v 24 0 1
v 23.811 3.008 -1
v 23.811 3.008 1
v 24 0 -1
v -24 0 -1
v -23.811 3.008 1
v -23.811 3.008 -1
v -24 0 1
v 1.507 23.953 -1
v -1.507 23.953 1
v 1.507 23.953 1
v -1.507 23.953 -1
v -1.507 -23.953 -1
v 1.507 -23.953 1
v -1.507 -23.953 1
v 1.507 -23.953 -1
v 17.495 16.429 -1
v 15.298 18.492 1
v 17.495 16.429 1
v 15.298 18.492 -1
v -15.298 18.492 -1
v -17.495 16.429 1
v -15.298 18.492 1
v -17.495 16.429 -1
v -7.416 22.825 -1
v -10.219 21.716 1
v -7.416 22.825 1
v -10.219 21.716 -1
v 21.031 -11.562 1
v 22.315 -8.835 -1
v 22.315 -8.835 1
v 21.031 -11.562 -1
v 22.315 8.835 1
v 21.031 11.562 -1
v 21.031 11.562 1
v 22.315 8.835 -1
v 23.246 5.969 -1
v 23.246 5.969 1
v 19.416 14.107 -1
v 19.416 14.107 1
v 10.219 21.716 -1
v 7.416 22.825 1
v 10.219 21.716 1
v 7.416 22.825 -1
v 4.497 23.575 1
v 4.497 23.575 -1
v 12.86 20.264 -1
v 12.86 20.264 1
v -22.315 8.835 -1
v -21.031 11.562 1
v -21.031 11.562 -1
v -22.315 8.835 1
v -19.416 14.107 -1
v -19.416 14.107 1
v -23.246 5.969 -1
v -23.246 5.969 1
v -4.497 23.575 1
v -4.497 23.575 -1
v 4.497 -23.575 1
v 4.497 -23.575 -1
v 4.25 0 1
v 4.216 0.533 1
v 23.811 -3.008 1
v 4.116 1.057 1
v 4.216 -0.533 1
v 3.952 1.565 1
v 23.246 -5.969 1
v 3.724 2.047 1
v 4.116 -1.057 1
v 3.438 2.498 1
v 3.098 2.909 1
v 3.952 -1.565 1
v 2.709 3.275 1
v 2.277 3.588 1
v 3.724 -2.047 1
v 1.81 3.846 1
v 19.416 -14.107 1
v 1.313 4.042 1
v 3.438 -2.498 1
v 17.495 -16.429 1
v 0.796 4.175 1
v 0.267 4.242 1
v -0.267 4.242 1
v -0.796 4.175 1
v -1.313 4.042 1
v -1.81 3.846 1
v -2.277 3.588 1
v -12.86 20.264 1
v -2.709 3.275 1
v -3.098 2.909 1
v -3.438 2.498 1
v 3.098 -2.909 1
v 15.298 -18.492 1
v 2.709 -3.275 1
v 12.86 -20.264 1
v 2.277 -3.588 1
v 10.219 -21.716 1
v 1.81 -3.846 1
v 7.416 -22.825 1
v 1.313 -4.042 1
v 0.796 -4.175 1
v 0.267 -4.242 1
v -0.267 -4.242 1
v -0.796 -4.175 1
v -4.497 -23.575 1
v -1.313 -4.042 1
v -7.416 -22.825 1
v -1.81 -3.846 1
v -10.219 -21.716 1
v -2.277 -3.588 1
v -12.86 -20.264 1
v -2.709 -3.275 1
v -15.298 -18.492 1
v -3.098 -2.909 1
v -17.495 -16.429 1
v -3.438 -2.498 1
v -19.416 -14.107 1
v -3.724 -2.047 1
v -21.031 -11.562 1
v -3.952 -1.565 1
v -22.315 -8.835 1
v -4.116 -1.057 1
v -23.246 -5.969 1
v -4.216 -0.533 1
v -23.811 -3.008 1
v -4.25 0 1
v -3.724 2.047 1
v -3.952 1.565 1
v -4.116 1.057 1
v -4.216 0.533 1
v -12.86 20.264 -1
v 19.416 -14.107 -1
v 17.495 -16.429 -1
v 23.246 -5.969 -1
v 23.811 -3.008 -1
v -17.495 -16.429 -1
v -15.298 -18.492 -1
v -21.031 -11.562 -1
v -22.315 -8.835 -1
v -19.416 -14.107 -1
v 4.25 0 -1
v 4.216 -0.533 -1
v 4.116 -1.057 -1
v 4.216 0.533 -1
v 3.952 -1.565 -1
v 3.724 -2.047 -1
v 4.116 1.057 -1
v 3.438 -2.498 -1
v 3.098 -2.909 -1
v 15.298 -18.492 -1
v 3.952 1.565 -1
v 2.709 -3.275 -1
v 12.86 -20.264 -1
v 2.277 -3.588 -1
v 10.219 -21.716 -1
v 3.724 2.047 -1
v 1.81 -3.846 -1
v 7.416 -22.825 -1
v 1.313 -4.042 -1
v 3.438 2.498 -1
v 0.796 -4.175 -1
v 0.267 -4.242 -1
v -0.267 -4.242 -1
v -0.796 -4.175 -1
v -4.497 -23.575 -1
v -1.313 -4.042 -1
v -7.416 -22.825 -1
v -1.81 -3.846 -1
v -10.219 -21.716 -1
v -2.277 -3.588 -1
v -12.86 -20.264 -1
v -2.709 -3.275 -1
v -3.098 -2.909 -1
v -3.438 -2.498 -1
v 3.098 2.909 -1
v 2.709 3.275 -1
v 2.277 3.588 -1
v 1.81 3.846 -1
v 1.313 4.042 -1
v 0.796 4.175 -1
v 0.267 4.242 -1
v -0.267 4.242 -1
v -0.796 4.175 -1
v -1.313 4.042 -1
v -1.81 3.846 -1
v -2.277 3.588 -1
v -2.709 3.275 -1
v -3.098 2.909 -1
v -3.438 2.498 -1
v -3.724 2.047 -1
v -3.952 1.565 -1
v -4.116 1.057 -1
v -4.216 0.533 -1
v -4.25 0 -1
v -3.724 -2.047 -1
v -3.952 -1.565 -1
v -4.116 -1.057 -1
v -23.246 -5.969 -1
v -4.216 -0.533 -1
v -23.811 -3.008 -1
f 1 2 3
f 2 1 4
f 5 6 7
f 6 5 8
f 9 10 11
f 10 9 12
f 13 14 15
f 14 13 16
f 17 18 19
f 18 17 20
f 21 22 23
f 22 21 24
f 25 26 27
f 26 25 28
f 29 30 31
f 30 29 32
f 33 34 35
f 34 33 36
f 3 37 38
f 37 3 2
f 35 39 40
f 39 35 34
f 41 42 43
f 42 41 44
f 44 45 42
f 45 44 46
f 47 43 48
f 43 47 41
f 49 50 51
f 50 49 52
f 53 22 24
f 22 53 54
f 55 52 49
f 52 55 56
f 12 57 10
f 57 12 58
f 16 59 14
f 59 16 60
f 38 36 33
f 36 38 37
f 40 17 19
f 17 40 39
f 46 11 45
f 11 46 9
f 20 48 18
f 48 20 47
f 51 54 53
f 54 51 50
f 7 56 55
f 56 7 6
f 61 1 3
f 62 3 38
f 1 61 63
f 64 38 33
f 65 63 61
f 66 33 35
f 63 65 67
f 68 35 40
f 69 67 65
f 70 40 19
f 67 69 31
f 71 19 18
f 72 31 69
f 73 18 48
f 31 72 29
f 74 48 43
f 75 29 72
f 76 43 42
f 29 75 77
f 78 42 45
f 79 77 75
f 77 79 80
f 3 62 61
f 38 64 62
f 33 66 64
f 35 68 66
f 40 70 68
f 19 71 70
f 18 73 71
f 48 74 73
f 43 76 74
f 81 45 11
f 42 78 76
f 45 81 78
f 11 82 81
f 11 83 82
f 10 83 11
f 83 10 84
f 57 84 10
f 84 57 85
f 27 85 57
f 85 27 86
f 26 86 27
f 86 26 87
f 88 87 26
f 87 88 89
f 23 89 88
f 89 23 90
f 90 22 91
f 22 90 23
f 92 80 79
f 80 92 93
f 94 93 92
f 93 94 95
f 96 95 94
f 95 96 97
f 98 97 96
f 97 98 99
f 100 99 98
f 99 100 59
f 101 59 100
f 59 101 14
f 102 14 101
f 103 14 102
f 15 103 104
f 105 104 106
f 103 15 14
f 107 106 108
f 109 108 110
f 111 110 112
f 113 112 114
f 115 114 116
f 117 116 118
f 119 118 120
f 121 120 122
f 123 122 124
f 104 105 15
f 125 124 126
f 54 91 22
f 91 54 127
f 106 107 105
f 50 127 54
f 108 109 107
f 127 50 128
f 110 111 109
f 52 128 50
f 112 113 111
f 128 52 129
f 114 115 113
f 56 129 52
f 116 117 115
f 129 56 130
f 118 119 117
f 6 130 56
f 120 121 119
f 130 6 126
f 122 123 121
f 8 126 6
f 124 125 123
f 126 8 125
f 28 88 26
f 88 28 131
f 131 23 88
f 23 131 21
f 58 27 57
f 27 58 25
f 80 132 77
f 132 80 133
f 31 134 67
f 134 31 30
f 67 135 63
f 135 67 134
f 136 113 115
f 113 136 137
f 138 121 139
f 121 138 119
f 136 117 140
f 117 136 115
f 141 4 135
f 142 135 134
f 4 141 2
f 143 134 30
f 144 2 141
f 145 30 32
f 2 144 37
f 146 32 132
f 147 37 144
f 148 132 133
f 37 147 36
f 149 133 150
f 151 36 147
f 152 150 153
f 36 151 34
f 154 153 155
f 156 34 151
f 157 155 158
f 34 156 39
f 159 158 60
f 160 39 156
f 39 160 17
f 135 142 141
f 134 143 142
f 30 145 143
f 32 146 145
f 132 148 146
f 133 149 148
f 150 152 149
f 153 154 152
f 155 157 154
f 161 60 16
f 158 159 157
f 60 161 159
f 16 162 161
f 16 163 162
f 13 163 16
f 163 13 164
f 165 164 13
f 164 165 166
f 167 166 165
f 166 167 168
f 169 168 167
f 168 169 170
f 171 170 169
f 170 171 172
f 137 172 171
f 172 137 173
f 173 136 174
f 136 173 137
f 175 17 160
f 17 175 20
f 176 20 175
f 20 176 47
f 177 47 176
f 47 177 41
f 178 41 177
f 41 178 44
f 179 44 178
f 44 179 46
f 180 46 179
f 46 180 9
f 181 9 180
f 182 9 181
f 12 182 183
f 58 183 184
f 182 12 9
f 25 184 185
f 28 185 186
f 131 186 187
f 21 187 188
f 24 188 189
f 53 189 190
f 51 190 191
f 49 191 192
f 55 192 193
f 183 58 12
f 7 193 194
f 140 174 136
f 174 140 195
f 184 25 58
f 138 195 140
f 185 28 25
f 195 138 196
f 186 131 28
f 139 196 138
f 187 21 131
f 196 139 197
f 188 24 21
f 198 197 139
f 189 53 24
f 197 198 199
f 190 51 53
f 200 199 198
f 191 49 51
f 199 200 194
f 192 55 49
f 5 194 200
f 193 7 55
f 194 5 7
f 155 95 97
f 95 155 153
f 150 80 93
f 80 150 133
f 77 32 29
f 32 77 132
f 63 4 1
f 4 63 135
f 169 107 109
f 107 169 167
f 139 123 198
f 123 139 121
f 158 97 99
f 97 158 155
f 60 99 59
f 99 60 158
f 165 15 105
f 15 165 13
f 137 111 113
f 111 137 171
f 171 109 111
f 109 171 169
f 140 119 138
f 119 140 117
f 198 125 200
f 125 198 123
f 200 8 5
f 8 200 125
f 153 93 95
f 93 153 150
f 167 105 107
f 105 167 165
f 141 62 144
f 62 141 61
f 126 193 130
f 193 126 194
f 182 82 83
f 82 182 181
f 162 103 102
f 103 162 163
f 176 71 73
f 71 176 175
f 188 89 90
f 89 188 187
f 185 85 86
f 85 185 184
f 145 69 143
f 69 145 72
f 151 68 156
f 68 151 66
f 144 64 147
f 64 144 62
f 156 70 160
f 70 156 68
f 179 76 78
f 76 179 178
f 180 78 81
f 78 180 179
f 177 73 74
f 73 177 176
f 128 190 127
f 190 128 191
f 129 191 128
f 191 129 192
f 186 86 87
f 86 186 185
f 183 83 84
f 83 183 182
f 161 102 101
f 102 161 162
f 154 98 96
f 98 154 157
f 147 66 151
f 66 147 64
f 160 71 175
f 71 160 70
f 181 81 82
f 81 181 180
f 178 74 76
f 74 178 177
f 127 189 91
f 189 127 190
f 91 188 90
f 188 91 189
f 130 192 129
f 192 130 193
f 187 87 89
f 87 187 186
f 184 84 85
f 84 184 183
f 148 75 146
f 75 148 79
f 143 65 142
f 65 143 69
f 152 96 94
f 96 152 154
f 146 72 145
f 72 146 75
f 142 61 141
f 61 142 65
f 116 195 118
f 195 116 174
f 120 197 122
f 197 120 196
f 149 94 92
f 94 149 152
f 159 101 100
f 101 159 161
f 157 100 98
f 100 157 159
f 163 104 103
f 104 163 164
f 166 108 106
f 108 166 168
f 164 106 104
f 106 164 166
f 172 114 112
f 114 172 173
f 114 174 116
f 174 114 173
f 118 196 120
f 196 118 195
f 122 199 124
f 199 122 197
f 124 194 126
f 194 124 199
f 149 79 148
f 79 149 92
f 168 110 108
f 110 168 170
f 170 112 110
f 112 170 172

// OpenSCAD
$fn = 50;


difference() {
	union() {
		translate(v = [0, 0, -1.0000000000]) {
			cylinder(h = 2, r = 24.0000000000);
		}
	}
	union() {
		translate(v = [0, 0, -100.0000000000]) {
			cylinder(h = 200, r = 4.2500000000);
		}
	}
}
